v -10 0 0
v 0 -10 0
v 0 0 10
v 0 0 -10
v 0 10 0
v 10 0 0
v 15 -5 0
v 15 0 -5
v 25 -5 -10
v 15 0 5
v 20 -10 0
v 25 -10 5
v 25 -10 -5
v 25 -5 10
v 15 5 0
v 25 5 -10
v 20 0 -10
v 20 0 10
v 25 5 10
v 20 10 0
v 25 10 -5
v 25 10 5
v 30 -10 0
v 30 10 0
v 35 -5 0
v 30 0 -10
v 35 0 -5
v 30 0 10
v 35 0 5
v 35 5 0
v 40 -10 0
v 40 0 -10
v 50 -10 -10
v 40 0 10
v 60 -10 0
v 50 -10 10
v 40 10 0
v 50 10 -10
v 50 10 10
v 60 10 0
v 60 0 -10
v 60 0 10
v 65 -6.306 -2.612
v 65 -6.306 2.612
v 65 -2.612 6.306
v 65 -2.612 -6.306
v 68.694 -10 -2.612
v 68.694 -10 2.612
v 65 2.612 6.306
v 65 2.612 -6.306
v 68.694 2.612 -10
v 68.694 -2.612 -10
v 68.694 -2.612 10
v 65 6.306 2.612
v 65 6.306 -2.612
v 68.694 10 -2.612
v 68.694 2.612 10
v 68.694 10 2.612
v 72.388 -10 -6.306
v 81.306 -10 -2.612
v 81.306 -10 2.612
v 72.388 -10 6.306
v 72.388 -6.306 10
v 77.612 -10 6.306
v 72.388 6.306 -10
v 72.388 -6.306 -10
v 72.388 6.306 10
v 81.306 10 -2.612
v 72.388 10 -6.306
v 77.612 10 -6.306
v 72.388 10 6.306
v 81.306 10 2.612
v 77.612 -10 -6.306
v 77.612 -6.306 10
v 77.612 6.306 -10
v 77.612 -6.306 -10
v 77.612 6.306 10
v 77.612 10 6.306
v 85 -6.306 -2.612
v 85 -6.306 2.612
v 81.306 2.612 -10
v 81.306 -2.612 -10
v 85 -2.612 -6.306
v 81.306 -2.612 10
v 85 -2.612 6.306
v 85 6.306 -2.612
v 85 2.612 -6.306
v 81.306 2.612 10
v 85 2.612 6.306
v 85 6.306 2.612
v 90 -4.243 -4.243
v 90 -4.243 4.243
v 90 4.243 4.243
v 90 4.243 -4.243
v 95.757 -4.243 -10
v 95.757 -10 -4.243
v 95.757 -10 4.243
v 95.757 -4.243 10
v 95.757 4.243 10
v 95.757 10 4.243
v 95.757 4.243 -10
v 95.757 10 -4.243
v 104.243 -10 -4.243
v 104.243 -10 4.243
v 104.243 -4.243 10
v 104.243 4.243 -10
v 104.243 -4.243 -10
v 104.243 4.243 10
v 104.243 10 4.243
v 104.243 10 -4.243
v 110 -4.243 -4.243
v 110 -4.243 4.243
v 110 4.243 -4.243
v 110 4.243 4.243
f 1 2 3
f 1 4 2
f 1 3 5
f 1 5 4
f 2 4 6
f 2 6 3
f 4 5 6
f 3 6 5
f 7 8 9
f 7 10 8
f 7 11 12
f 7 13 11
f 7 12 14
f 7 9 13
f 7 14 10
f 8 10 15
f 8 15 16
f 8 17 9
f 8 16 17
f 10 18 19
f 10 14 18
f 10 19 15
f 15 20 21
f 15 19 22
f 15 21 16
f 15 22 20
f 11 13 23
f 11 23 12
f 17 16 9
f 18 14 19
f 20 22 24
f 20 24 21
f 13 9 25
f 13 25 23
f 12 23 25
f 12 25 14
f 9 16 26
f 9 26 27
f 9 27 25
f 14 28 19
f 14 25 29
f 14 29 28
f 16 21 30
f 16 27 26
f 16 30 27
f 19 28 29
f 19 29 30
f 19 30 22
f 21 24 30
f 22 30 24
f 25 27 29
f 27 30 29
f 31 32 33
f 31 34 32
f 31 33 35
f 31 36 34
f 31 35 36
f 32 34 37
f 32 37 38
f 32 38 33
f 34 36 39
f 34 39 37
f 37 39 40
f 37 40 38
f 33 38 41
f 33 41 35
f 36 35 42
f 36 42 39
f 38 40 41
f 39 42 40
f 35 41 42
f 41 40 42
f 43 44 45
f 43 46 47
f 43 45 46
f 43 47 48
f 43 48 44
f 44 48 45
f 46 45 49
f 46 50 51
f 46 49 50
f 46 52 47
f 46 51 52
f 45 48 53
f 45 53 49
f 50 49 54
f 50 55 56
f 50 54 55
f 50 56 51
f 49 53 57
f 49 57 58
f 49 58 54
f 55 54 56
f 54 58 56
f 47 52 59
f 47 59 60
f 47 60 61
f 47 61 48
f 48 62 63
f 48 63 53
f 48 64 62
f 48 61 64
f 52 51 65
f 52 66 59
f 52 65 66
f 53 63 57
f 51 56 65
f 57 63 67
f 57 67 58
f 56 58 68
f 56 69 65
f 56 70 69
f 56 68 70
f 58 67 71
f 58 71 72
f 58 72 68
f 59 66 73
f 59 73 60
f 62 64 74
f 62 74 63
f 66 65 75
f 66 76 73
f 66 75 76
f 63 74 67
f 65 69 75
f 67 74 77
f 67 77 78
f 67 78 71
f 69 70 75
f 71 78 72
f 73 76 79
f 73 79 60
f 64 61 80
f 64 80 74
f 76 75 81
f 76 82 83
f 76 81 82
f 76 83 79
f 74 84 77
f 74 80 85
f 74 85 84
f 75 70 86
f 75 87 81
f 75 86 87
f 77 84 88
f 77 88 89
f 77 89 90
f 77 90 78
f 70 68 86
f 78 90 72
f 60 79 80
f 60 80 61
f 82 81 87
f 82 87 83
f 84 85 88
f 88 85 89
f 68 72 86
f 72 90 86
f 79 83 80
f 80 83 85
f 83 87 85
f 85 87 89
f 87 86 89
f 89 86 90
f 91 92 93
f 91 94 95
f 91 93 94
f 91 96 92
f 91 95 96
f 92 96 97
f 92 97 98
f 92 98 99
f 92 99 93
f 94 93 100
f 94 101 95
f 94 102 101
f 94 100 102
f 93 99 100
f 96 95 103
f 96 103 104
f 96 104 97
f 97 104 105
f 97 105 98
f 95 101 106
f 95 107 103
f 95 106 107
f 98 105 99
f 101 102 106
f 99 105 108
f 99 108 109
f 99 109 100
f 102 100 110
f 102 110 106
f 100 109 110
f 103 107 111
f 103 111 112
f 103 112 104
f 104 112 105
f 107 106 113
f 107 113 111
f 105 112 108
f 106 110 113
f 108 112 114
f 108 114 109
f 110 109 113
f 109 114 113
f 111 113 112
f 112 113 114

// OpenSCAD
/* scADVENT 2021 - Octahedron   by Ulrich Bär  license:CC0 
 https://creativecommons.org/publicdomain/zero/1.0/
 
 
 Today we learn how to generate a https://en.wikipedia.org/wiki/Truncated_octahedron
 and yes the last form (model 4) is also the base of a https://en.wikipedia.org/wiki/Moravian_star
 */

/*[Octahedron]*/
h=20;
cut=0;
model=0;//[0:Octahedron,1:truncatedOctahedron,2:Cuboctahedron,3:Trucatedcuboctahedron,4:Rhombicuboctahedron ]



if(!cut&&!model) for(i=[0:4])translate([i*(h +5),0])color(rands(0,1,3))Object(i);
  else Object(model);


   //  Octa means 8  like two pyramids with 4 sides
  // and truncated that we have to cut something away.
 // if we cutting ¼ an each side so half in total away we get a Cuboctaheadron with triangle and square faces
// if we take ⅙ on each side ⅓ in total we get the truncatedOctahedron

module Oktaeder(h=30,c)intersection(){
  union(){
    cylinder(h/2,r1=h/2,r2=0,$fn=4);                   // Pyramid
    rotate(180,[1,0,0])cylinder(h/2,r1=h/2,r2=0,$fn=4); // Pyramid upside down
  }
if(c)cube(c,true);
}

module Object(model){
if (model==0) Oktaeder(h=h,c=h-cut);
if (model==1) Oktaederstumpf(h=h);
if (model==2) Kuboktaeder(h=h);
if (model==3) Rhombenkuboktaeder(h=h,fn=8);
if (model==4) Rhombenkuboktaeder(h=h,fn=4,r=h/(3+1/3));  
}

module Rhombenkuboktaeder(h=20,fn=8,r){
    r=is_undef(r)?h/2.93:r;
hull(){// rhombenkuboktaeder
rotate(180/fn)cylinder(h,r=r,center=true,$fn=fn);
rotate([90,0])rotate(180/fn)cylinder(h,r=r,center=true,$fn=fn);    
rotate([0,90])rotate(180/fn)cylinder(h,r=r,center=true,$fn=fn);
}
}

module Oktaederstumpf(h=20)
intersection(){
    Oktaeder(h/2*3);
    cube(h,true);    
}

module Kuboktaeder(h=20)
intersection(){
    Oktaeder(h/2*4);
    cube(h,true);
}
